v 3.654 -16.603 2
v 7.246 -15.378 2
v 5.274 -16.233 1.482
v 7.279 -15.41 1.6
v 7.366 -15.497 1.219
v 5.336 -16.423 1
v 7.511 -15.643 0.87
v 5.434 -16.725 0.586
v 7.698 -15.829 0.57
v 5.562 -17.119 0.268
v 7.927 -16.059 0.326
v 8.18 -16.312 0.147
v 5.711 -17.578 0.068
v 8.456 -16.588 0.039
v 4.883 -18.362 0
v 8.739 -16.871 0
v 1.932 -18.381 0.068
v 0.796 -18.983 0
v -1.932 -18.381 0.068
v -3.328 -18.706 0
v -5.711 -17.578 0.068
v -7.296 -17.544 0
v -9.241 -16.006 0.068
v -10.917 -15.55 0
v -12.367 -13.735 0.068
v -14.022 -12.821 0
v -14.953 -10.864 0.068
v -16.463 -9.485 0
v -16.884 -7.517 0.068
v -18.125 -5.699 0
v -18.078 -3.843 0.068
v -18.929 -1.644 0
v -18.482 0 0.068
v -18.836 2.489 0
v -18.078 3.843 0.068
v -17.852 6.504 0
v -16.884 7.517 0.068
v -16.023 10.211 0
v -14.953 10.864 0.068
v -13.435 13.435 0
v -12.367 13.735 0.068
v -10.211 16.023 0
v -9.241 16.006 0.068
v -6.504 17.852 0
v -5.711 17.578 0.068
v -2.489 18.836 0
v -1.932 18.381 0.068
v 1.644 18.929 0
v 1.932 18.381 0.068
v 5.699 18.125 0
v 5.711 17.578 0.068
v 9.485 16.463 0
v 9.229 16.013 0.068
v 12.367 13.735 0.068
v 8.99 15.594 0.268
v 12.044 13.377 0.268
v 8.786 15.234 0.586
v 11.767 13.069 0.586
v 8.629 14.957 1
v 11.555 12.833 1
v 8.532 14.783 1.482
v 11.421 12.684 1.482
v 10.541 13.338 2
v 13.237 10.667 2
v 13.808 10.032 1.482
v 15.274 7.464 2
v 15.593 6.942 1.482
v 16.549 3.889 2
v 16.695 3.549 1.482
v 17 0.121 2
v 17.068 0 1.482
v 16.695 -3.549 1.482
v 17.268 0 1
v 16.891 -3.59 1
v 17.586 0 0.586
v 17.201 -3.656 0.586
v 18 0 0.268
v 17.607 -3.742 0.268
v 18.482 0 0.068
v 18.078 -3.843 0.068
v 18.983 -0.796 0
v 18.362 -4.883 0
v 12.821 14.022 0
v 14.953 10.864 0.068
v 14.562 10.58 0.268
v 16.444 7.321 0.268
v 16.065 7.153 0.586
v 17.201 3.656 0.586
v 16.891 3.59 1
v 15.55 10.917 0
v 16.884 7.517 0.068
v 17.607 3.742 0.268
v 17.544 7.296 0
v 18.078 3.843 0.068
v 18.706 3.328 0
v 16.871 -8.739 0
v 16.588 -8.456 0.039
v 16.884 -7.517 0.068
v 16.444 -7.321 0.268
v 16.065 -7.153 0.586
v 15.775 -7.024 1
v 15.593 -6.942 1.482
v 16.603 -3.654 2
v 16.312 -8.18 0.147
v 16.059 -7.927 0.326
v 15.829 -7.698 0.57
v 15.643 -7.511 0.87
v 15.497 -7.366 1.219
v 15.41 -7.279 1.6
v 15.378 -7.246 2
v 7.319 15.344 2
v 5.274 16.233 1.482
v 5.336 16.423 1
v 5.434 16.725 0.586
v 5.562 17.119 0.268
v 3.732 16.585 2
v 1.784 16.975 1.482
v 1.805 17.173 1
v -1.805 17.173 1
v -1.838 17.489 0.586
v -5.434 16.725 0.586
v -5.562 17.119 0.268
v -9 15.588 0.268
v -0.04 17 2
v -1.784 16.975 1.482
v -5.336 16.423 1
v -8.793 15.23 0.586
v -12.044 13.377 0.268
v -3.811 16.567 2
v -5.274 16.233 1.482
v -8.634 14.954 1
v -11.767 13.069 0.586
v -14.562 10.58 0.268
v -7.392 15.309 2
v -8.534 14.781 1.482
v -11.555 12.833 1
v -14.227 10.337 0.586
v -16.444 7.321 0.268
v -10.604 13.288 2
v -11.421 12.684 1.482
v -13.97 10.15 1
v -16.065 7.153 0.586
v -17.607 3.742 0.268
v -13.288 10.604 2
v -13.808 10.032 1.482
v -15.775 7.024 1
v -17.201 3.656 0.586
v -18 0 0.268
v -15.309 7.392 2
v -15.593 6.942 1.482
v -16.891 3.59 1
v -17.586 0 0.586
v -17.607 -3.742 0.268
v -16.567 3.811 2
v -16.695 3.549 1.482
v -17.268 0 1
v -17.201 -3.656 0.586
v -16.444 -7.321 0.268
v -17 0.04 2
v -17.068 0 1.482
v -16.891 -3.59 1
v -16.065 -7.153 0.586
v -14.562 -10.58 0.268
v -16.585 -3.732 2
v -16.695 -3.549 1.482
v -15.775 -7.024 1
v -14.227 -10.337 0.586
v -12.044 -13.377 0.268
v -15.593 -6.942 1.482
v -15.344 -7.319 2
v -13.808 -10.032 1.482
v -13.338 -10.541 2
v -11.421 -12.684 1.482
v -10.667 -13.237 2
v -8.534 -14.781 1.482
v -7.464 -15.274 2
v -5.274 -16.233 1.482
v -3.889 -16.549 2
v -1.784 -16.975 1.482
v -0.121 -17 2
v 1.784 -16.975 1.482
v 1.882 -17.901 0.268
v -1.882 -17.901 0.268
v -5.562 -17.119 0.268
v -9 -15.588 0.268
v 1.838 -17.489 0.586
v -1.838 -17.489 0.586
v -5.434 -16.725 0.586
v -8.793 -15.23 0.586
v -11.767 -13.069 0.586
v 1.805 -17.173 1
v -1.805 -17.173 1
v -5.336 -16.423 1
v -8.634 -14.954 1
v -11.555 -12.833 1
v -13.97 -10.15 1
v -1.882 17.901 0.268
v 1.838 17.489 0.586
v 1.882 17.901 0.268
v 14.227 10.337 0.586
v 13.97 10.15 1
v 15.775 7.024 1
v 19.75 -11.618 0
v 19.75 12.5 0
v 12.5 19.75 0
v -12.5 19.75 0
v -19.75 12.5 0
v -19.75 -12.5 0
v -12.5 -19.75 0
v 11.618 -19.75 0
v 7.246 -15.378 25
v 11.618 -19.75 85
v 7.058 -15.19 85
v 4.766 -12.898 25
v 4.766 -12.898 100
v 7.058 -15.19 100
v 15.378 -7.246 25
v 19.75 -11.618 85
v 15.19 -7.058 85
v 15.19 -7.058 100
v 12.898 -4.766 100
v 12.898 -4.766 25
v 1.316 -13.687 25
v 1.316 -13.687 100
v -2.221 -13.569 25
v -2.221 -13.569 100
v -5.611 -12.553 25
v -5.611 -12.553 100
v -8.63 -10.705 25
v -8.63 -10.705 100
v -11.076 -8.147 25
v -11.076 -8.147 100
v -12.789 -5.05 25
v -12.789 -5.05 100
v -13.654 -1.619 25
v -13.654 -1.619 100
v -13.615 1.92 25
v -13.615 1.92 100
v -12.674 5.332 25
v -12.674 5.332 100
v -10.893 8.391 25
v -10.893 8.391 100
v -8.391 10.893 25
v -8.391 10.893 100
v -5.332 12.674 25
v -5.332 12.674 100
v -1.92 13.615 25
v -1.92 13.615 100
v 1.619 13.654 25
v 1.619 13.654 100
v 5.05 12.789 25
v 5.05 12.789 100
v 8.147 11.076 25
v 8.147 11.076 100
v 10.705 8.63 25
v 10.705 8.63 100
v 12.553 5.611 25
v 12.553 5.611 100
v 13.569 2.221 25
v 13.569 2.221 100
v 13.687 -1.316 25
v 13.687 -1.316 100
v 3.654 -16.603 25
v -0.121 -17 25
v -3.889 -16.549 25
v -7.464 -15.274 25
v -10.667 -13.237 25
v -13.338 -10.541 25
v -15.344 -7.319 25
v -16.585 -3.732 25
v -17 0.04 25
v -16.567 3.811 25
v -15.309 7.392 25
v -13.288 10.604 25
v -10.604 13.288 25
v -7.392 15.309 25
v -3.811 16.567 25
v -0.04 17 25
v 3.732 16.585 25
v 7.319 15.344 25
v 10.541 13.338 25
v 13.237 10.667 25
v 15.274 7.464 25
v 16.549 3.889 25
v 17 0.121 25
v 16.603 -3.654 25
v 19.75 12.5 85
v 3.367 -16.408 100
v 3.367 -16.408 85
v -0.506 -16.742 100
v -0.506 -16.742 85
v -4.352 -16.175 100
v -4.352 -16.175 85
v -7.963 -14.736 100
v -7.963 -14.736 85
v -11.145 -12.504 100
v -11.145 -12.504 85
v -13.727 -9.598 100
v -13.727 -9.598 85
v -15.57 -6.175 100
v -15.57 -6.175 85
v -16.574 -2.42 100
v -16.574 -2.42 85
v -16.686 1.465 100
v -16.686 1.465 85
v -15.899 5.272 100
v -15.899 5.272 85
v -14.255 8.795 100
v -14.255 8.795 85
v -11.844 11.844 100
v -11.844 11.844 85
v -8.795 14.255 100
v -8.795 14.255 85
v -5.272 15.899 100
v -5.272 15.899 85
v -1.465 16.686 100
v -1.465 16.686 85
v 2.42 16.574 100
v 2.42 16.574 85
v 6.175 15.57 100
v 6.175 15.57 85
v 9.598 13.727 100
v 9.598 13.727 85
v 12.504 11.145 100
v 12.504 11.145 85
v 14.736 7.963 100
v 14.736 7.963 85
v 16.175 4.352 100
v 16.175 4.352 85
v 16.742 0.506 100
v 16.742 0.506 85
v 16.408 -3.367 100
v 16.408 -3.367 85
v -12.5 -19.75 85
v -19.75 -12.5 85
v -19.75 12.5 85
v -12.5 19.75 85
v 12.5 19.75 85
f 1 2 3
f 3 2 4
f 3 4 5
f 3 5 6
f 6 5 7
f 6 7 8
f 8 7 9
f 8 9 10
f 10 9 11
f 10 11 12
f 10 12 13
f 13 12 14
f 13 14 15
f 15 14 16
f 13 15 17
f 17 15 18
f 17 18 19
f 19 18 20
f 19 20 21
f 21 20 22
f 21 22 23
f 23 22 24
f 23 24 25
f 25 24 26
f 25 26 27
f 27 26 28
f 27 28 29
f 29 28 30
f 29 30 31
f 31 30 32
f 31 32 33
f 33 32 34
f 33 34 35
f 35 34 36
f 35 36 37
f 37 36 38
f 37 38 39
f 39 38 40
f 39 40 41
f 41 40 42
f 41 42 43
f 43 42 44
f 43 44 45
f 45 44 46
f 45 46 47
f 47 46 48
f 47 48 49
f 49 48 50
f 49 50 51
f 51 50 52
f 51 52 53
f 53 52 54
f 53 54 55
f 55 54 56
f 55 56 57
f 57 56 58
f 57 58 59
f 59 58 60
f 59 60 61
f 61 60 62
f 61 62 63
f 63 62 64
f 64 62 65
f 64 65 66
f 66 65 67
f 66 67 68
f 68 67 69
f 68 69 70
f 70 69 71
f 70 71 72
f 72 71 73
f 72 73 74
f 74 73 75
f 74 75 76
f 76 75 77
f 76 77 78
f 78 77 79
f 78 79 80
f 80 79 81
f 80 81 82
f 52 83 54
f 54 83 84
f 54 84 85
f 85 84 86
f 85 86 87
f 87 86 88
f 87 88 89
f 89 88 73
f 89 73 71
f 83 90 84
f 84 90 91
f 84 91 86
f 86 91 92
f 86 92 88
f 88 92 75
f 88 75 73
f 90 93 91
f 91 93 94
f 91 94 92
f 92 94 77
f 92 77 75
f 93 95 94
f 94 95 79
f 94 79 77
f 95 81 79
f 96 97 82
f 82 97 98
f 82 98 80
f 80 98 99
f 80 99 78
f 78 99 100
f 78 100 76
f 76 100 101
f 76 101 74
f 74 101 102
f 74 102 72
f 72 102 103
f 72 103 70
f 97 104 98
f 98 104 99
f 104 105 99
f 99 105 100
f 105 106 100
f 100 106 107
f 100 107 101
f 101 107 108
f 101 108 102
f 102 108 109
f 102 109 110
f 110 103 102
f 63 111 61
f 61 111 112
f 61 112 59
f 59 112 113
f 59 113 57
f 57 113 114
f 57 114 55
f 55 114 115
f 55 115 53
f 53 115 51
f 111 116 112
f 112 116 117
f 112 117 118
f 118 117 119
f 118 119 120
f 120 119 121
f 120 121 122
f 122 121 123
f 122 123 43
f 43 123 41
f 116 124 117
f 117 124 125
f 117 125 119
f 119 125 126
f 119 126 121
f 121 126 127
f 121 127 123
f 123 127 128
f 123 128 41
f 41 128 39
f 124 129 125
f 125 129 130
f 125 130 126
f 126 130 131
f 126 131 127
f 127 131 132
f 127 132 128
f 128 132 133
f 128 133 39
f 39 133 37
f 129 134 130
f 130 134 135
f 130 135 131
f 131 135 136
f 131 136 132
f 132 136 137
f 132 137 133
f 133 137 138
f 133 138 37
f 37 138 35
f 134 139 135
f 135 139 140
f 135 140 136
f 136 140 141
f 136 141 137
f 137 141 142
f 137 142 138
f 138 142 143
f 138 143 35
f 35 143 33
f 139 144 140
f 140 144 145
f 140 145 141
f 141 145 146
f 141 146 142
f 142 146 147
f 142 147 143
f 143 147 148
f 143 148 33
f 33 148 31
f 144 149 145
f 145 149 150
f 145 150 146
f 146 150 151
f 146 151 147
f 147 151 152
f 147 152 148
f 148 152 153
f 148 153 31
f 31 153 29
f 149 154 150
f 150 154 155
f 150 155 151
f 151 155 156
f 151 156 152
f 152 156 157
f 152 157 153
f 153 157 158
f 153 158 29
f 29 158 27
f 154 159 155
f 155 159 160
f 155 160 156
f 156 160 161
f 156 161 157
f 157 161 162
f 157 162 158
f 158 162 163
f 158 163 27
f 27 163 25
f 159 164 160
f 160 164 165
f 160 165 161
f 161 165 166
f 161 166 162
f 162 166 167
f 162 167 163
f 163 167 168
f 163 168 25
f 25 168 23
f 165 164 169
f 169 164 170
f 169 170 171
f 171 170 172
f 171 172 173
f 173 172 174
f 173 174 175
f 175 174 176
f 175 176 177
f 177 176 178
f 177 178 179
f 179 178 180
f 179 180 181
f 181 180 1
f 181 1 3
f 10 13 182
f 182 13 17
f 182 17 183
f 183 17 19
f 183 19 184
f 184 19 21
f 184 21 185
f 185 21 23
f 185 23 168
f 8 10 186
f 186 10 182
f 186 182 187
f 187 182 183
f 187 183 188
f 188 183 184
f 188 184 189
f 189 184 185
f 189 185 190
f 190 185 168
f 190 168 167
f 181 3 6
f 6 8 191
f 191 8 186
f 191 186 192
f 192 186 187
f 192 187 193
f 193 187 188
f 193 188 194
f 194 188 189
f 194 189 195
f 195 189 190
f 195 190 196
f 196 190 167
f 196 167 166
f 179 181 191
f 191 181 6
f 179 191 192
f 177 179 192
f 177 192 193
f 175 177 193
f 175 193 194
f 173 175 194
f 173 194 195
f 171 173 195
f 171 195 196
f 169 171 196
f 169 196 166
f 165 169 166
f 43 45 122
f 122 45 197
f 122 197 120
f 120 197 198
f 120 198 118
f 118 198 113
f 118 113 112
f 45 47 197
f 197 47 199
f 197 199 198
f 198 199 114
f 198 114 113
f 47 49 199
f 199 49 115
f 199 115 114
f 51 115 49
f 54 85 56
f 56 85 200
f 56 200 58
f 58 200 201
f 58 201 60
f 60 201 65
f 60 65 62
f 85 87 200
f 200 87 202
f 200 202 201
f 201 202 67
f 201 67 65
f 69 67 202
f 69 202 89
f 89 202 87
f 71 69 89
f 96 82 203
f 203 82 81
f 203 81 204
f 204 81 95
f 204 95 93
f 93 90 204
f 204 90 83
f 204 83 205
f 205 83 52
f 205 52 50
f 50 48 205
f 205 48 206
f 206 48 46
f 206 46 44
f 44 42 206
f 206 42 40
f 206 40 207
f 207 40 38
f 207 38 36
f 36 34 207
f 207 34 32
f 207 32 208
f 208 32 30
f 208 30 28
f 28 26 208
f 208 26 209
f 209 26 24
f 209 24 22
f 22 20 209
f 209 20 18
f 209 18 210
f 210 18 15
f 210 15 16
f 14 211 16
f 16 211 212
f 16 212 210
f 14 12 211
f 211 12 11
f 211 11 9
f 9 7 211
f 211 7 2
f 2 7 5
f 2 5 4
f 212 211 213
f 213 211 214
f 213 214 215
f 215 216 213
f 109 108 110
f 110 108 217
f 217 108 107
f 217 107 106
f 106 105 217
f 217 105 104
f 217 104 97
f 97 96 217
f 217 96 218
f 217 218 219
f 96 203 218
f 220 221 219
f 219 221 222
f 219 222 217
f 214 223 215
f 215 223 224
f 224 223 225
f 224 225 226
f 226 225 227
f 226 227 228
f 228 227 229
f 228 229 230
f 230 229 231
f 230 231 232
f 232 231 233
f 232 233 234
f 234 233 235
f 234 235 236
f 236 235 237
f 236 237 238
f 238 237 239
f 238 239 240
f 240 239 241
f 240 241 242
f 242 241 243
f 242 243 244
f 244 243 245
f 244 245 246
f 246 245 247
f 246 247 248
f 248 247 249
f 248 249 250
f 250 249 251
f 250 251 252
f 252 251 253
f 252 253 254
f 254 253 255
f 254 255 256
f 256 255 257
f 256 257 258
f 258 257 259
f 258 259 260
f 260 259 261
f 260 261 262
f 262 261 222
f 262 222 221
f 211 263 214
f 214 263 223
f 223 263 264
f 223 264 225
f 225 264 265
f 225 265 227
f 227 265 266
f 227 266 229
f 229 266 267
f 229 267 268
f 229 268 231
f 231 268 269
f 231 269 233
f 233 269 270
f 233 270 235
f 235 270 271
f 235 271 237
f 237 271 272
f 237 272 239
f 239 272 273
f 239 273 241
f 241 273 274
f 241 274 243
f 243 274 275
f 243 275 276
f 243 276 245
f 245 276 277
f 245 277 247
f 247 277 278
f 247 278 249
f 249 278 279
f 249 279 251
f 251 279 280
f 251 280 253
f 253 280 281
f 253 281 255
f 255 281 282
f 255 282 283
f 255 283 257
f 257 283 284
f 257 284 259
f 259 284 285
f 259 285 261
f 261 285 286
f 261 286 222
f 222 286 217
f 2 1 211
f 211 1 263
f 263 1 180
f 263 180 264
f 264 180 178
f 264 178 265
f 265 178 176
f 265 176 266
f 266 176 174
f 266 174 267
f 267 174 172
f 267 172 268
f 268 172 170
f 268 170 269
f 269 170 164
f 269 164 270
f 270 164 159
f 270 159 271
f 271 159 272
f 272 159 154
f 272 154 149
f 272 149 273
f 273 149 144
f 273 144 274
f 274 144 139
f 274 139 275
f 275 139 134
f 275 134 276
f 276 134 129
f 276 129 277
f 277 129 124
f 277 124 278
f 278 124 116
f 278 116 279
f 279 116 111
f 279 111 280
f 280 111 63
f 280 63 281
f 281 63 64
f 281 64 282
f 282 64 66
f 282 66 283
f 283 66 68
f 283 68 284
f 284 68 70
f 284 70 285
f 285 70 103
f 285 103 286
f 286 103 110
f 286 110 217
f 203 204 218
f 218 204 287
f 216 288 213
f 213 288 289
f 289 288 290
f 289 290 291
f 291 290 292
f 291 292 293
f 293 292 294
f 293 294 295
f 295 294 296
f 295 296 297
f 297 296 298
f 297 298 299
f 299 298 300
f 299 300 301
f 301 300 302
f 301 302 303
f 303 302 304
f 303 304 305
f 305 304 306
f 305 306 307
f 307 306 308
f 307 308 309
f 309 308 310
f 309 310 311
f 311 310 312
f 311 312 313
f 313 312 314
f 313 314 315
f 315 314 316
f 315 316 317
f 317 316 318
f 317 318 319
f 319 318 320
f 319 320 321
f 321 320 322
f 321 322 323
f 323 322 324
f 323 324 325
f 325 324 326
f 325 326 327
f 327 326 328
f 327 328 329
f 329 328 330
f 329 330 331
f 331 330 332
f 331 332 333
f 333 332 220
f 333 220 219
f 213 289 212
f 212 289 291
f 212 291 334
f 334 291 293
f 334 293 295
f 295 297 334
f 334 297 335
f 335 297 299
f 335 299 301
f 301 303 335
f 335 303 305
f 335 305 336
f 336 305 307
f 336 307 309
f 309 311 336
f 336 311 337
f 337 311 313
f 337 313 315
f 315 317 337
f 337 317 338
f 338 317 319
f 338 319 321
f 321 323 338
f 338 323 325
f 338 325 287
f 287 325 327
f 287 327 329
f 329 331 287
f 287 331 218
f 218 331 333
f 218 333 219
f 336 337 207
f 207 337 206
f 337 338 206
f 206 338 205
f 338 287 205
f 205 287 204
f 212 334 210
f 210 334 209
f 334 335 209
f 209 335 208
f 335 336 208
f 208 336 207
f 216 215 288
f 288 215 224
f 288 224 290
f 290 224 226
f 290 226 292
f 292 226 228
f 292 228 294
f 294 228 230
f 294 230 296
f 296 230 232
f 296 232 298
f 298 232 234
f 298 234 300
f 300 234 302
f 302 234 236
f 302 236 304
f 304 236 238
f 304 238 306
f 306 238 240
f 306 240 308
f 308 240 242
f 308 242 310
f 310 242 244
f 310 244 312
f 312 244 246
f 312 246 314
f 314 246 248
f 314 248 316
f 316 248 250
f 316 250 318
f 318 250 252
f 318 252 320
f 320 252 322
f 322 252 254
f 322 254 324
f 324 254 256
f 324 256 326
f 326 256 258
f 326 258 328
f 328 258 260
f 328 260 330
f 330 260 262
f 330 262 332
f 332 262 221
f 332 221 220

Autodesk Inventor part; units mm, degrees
ref_plane "YZ Plane" through (0, 0, 0) normal (1, 0, 0) x (0, 1, 0)
ref_plane "XZ Plane" through (0, 0, 0) normal (0, 1, 0) x (-1, 0, 0)
ref_plane "XY Plane" through (0, 0, 0) normal (0, 0, 1) x (1, 0, 0)
sketch "Sketch1" plane through (0, 0, 0) normal (0, 0, 1) x (1, 0, 0)
  line L0 (-12.5, -19.75) -> (12.5, -19.75)
  line L1 (19.75, -12.5) -> (19.75, 12.5)
  line L2 (12.5, 19.75) -> (-12.5, 19.75)
  line L3 (-19.75, 12.5) -> (-19.75, -12.5)
  line L4 (19.75, 19.75) -> (19.75, 19.75)
  line L5 (19.75, 19.75) -> (19.75, 19.75)
  line L6 (19.75, -12.5) -> (19.75, -12.5)
  line L7 (-12.5, -19.75) -> (-19.75, -12.5)
  line L8 (-19.75, 12.5) -> (-12.5, 19.75)
  line L9 (12.5, 19.75) -> (19.75, 12.5)
  line L10 (19.75, -12.5) -> (12.5, -19.75)
  line L11 (-19.75, 0) -> (19.75, 0) construction
  circle A0 centre (0, 0) radius 10
  point P0 (19.75, 19.75)
  point P1 (19.75, -19.75)
  point P2 (-19.75, 19.75)
  dimension "d33" = 39.5
  dimension "d34" = 39.5
  dimension "d35" = 20
extrude "Extrusion7" add sketch "Sketch1" along normal blind 100
sketch "Sketch8" plane through (0, 0, 100) normal (0, 0, 1) x (1, 0, 0)
  circle A0 centre (0, 0) radius 13.75
  dimension "d38" = 27.5
extrude "Extrusion8" cut sketch "Sketch8" against normal blind 100
sketch "Sketch10" plane through (0, 0, 0) normal (0, 0, -1) x (-1, 0, 0)
  circle A0 centre (0, 0) radius 17
  dimension "d44" = 34
extrude "Extrusion10" cut sketch "Sketch10" against normal blind 25
sketch "Sketch11" plane through (0, 0, 100) normal (0, 0, 1) x (1, 0, 0)
  circle A0 centre (0, 0) radius 16.75
  line L0 (39.1509, 23.8646) -> (-32.83, 23.8646)
  line L1 (-32.83, 23.8646) -> (-32.83, -25.2836)
  line L2 (-32.83, -25.2836) -> (39.1509, -25.2836)
  line L3 (39.1509, -25.2836) -> (39.1509, 23.8646)
  dimension "d47" = 33.5
extrude "Extrusion11" cut sketch "Sketch11" against normal blind 15
sketch "Sketch12" plane through (12.5, -19.75, 85) normal (0.7071, -0.7071, 0) x (-0.7071, -0.7071, 0)
  line L0 (-10.8765, 85) -> (0.6235, 85)
  line L1 (0.6235, 85) -> (0.6235, -33.4393)
  line L2 (0.6235, -33.4393) -> (-10.8765, -33.4393)
  line L3 (-10.8765, -33.4393) -> (-10.8765, 85)
  line L4 (-5.1265, 85) -> (-5.1265, -33.4393) construction
  line L5 (0, 85) -> (-10.253, 85) projected
  point P0 (-5.1265, 85)
  dimension "d50" = 11.5
extrude "Extrusion12" cut sketch "Sketch12" against normal blind 20
fillet "Fillet1" radius 2 1 edges at (-12.0208, 12.0208, 0)
properties part number "conduit_endcap" material "UHMW, Black"
